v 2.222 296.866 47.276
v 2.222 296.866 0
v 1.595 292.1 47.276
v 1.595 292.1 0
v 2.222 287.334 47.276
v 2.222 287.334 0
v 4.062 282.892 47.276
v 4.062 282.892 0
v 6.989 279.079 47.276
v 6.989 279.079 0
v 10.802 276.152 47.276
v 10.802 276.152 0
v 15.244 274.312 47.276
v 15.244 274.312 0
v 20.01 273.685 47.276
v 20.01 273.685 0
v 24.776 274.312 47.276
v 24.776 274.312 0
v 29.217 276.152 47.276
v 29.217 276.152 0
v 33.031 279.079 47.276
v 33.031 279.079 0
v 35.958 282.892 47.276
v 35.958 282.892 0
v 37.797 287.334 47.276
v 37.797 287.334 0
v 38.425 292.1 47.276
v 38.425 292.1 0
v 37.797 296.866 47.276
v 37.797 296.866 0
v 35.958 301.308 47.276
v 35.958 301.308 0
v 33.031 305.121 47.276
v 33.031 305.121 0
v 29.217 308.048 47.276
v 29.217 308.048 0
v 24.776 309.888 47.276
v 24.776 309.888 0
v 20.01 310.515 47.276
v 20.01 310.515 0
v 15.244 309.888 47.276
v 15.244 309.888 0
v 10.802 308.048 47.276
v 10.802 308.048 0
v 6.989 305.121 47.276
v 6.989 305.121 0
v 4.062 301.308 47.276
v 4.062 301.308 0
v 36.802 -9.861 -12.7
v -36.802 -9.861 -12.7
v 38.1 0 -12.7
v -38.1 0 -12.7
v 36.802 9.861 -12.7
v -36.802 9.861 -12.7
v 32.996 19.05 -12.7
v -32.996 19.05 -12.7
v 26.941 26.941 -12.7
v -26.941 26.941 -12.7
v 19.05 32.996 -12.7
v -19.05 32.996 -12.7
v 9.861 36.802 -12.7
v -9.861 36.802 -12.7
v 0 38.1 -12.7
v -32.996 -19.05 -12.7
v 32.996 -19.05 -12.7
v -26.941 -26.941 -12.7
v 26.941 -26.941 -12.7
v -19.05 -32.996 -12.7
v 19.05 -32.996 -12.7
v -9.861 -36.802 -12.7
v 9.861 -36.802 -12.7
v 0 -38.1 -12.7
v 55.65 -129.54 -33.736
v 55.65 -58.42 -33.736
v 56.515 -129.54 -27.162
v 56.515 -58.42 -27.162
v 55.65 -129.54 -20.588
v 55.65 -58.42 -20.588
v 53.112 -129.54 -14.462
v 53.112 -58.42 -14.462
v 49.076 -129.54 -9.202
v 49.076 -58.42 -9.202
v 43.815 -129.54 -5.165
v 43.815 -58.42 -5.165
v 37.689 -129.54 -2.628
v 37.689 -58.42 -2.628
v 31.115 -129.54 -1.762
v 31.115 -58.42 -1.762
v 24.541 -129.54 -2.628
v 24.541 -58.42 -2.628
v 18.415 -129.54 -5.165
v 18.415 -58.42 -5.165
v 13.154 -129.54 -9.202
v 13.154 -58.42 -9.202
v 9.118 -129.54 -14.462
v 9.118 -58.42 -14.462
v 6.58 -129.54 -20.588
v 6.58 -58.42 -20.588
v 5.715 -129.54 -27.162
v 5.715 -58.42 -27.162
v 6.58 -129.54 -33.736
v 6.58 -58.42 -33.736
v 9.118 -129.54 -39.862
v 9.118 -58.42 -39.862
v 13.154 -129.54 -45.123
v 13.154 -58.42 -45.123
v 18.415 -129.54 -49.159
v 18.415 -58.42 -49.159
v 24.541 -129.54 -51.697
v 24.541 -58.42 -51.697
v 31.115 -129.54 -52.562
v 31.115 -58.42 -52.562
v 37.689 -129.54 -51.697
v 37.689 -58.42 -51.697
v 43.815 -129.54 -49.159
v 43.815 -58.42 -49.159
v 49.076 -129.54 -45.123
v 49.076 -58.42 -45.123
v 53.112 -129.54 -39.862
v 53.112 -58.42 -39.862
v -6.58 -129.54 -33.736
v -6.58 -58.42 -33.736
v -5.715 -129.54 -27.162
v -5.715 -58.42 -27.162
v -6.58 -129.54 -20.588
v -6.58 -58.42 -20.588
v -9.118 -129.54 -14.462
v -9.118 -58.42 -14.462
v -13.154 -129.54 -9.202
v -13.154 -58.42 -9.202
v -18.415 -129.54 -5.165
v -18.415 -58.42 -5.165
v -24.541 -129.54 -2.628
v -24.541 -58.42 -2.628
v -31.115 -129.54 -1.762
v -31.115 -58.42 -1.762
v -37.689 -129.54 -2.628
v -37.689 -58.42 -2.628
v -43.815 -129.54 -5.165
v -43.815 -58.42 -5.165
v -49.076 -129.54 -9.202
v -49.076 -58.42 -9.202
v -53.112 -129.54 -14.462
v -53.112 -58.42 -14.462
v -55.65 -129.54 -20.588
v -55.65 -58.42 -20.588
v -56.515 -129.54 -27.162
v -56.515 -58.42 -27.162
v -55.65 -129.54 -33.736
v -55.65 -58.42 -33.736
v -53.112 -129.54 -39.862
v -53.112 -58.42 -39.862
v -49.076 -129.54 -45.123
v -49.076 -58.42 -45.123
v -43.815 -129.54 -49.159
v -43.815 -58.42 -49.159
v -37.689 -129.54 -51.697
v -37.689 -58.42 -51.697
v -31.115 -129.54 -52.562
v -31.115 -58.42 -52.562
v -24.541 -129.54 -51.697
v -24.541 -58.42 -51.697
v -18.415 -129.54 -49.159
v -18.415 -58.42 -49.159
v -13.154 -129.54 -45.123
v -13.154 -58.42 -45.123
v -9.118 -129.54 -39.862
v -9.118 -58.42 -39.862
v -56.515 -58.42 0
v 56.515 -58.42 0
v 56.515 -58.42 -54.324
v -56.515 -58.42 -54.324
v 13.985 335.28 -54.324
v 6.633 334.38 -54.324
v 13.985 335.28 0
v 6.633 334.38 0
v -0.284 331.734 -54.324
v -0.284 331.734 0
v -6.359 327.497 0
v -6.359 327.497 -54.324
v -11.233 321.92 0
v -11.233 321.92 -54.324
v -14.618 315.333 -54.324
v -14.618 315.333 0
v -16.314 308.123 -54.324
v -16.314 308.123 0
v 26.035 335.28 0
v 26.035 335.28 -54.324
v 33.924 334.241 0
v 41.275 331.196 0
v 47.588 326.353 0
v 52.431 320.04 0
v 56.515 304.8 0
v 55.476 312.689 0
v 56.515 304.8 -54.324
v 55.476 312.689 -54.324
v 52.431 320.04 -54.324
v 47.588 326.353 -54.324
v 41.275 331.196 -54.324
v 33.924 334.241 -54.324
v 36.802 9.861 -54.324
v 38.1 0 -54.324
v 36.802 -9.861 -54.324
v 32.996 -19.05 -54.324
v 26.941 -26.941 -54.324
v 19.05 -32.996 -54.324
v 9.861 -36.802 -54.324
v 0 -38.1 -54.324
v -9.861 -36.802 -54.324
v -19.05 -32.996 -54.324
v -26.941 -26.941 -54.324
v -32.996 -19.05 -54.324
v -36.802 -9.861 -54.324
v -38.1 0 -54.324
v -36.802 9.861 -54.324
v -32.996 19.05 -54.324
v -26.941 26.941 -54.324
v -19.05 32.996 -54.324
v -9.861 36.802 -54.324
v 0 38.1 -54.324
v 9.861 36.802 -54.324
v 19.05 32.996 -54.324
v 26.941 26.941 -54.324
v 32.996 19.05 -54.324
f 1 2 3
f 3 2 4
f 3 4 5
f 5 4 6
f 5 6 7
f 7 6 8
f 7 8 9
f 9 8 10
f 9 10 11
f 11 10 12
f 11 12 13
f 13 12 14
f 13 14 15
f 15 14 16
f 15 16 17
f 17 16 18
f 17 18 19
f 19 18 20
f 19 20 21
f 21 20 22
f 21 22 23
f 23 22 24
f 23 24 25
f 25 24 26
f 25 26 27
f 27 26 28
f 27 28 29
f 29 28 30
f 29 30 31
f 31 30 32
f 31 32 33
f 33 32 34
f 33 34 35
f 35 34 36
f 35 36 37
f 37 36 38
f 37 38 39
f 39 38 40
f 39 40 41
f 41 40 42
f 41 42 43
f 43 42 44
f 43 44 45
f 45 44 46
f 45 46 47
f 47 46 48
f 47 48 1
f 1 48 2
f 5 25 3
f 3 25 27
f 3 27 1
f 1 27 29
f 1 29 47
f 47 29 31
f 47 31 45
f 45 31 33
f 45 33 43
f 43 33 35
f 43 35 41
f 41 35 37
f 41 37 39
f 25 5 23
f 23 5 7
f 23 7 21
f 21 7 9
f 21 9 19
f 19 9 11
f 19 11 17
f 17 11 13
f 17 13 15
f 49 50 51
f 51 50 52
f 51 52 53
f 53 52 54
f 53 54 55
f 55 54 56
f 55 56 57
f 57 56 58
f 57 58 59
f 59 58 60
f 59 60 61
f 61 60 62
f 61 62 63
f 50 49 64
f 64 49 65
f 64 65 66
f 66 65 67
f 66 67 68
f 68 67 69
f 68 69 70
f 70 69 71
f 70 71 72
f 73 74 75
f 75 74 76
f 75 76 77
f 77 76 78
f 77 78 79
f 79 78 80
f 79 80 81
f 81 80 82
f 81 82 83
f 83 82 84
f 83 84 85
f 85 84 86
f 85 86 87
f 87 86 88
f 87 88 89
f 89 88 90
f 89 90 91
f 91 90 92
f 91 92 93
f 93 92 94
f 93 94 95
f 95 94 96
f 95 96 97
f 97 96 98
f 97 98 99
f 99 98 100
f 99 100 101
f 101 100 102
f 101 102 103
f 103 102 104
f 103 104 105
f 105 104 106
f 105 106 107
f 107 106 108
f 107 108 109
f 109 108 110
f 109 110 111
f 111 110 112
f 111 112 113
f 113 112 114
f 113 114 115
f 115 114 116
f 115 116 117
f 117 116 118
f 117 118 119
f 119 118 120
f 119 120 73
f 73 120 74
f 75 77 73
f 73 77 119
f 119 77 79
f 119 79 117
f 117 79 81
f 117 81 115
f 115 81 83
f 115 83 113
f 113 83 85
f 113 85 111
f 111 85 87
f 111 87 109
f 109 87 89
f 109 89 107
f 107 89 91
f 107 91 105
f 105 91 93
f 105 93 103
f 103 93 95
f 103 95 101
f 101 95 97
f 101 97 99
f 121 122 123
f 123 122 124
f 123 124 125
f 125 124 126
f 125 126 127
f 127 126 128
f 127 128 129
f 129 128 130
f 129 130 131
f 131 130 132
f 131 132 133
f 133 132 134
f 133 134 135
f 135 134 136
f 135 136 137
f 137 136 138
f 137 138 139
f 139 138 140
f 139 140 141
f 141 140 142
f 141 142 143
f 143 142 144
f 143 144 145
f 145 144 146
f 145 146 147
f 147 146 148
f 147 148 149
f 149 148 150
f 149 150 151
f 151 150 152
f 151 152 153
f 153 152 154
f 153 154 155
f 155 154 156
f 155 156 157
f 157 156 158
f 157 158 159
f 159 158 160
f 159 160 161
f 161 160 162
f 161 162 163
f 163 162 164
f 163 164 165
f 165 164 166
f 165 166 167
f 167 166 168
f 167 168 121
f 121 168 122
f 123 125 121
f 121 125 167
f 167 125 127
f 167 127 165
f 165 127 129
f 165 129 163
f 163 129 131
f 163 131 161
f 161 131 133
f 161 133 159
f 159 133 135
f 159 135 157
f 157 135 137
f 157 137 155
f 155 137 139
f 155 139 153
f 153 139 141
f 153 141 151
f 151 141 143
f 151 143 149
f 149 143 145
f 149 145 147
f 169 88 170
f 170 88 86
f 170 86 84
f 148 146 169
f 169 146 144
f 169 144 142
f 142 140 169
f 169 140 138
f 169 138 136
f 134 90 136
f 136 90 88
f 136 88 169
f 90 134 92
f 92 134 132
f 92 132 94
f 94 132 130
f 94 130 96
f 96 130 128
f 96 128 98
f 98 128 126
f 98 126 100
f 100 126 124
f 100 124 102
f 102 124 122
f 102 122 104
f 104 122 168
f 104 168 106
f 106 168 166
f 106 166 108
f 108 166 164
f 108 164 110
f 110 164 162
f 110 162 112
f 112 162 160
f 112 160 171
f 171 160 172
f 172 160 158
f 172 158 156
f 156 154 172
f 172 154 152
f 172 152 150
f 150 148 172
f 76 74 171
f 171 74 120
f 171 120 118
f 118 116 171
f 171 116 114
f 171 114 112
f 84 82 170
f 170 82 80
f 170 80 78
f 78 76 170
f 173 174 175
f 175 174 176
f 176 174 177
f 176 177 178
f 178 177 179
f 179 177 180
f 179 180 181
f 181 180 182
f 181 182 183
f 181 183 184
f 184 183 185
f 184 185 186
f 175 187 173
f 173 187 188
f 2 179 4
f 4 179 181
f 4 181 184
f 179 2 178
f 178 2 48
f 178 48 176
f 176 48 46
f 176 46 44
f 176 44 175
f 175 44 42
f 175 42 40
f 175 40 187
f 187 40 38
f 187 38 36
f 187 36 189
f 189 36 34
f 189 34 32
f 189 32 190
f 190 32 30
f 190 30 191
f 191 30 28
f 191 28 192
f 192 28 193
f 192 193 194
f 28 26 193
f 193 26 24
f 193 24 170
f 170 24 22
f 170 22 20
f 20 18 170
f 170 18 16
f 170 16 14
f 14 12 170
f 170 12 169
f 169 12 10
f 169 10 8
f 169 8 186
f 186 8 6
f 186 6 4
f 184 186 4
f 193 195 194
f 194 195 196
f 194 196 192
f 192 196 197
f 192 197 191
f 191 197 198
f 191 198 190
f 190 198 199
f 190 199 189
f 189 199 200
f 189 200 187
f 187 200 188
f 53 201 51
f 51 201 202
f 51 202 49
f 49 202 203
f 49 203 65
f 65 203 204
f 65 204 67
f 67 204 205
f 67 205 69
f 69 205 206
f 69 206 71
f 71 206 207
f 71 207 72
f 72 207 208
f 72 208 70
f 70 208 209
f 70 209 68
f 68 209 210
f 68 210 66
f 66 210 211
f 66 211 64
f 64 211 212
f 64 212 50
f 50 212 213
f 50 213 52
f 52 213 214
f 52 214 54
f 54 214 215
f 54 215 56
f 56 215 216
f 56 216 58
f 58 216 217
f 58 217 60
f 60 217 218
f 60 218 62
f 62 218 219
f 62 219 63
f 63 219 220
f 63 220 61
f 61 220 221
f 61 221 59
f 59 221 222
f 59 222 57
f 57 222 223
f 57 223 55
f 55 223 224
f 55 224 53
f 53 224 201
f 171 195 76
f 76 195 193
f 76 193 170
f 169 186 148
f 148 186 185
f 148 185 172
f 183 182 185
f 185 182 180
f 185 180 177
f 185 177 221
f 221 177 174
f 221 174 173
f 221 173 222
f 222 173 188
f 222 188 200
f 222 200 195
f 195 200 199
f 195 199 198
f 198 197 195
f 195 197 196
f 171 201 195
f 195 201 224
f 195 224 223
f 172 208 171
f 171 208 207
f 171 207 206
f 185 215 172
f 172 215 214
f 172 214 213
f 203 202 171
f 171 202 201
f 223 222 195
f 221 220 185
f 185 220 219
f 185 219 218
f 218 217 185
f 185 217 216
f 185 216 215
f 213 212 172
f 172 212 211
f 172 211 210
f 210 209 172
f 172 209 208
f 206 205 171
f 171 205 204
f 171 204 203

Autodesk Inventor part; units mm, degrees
ref_plane "YZ Plane" through (0, 0, 0) normal (1, 0, 0) x (0, 1, 0)
ref_plane "XZ Plane" through (0, 0, 0) normal (0, 1, 0) x (-1, 0, 0)
ref_plane "XY Plane" through (0, 0, 0) normal (0, 0, 1) x (1, 0, 0)
sketch "Sketch1" plane through (0, 0, 0) normal (0, 0, 1) x (1, 0, 0)
  circle A0 centre (0, 0) radius 38.1
  line L0 (-56.515, -58.42) -> (56.515, -58.42)
  line L1 (56.515, -58.42) -> (56.515, 335.28)
  line L2 (56.515, 335.28) -> (-13.335, 335.28)
  line L3 (-13.335, 335.28) -> (-56.515, -58.42)
  dimension "d0" = 76.2
  dimension "d1" = 393.7
  dimension "d2" = 113.03
  dimension "d3" = 69.85
  dimension "d4" = 58.42
  dimension "d5" = 56.515
extrude "Extrusion1" add sketch "Sketch1" against normal blind 54.3243
fillet "Fillet1" radius 30.48 2 edges at (56.515, 335.28, -27.1621) (-13.335, 335.28, -27.1621)
sketch "Sketch2" plane through (-56.515, -58.42, 0) normal (0, -1, 0) x (1, 0, 0)
  line L0 (113.03, 0) -> (113.03, -54.3243) projected
  line L1 (113.03, -27.1621) -> (0, -27.1621)
  line L2 (0, 0) -> (0, -54.3243) projected
  line L3 (56.515, -27.1621) -> (56.515, -44.3071)
  circle A0 centre (87.63, -27.1621) radius 25.4
  circle A1 centre (25.4, -27.1621) radius 25.4
  point P0 (56.515, 0)
  dimension "d10" = 50.8
  dimension "d9" = 50.8
  dimension "d11" = 113.03
extrude "Extrusion2" add sketch "Sketch2" along normal blind 71.12
sketch "Sketch3" plane through (0, 0, 0) normal (0, 0, 1) x (1, 0, 0)
  circle A0 centre (0, 0) radius 42.7153
extrude "Extrusion3" add sketch "Sketch3" against normal blind 12.7
sketch "Sketch4" plane through (0, 0, -54.3243) normal (0, 0, -1) x (-1, 0, 0)
  line L0 (-26.035, 335.28) -> (-13.9848, 335.28) projected
  line L1 (-20.0099, 335.28) -> (-20.0099, 292.1)
  circle A0 centre (-20.0099, 292.1) radius 18.415
  point P0 (0, 0)
  dimension "d17" = 36.83
  dimension "d20" = 292.1
extrude "Extrusion4" add sketch "Sketch4" against normal blind 101.6
equation "\"d5\" = 0.5 * d2"
equation "\"d10\" = d9"
properties part number "Forearm-lrg"
